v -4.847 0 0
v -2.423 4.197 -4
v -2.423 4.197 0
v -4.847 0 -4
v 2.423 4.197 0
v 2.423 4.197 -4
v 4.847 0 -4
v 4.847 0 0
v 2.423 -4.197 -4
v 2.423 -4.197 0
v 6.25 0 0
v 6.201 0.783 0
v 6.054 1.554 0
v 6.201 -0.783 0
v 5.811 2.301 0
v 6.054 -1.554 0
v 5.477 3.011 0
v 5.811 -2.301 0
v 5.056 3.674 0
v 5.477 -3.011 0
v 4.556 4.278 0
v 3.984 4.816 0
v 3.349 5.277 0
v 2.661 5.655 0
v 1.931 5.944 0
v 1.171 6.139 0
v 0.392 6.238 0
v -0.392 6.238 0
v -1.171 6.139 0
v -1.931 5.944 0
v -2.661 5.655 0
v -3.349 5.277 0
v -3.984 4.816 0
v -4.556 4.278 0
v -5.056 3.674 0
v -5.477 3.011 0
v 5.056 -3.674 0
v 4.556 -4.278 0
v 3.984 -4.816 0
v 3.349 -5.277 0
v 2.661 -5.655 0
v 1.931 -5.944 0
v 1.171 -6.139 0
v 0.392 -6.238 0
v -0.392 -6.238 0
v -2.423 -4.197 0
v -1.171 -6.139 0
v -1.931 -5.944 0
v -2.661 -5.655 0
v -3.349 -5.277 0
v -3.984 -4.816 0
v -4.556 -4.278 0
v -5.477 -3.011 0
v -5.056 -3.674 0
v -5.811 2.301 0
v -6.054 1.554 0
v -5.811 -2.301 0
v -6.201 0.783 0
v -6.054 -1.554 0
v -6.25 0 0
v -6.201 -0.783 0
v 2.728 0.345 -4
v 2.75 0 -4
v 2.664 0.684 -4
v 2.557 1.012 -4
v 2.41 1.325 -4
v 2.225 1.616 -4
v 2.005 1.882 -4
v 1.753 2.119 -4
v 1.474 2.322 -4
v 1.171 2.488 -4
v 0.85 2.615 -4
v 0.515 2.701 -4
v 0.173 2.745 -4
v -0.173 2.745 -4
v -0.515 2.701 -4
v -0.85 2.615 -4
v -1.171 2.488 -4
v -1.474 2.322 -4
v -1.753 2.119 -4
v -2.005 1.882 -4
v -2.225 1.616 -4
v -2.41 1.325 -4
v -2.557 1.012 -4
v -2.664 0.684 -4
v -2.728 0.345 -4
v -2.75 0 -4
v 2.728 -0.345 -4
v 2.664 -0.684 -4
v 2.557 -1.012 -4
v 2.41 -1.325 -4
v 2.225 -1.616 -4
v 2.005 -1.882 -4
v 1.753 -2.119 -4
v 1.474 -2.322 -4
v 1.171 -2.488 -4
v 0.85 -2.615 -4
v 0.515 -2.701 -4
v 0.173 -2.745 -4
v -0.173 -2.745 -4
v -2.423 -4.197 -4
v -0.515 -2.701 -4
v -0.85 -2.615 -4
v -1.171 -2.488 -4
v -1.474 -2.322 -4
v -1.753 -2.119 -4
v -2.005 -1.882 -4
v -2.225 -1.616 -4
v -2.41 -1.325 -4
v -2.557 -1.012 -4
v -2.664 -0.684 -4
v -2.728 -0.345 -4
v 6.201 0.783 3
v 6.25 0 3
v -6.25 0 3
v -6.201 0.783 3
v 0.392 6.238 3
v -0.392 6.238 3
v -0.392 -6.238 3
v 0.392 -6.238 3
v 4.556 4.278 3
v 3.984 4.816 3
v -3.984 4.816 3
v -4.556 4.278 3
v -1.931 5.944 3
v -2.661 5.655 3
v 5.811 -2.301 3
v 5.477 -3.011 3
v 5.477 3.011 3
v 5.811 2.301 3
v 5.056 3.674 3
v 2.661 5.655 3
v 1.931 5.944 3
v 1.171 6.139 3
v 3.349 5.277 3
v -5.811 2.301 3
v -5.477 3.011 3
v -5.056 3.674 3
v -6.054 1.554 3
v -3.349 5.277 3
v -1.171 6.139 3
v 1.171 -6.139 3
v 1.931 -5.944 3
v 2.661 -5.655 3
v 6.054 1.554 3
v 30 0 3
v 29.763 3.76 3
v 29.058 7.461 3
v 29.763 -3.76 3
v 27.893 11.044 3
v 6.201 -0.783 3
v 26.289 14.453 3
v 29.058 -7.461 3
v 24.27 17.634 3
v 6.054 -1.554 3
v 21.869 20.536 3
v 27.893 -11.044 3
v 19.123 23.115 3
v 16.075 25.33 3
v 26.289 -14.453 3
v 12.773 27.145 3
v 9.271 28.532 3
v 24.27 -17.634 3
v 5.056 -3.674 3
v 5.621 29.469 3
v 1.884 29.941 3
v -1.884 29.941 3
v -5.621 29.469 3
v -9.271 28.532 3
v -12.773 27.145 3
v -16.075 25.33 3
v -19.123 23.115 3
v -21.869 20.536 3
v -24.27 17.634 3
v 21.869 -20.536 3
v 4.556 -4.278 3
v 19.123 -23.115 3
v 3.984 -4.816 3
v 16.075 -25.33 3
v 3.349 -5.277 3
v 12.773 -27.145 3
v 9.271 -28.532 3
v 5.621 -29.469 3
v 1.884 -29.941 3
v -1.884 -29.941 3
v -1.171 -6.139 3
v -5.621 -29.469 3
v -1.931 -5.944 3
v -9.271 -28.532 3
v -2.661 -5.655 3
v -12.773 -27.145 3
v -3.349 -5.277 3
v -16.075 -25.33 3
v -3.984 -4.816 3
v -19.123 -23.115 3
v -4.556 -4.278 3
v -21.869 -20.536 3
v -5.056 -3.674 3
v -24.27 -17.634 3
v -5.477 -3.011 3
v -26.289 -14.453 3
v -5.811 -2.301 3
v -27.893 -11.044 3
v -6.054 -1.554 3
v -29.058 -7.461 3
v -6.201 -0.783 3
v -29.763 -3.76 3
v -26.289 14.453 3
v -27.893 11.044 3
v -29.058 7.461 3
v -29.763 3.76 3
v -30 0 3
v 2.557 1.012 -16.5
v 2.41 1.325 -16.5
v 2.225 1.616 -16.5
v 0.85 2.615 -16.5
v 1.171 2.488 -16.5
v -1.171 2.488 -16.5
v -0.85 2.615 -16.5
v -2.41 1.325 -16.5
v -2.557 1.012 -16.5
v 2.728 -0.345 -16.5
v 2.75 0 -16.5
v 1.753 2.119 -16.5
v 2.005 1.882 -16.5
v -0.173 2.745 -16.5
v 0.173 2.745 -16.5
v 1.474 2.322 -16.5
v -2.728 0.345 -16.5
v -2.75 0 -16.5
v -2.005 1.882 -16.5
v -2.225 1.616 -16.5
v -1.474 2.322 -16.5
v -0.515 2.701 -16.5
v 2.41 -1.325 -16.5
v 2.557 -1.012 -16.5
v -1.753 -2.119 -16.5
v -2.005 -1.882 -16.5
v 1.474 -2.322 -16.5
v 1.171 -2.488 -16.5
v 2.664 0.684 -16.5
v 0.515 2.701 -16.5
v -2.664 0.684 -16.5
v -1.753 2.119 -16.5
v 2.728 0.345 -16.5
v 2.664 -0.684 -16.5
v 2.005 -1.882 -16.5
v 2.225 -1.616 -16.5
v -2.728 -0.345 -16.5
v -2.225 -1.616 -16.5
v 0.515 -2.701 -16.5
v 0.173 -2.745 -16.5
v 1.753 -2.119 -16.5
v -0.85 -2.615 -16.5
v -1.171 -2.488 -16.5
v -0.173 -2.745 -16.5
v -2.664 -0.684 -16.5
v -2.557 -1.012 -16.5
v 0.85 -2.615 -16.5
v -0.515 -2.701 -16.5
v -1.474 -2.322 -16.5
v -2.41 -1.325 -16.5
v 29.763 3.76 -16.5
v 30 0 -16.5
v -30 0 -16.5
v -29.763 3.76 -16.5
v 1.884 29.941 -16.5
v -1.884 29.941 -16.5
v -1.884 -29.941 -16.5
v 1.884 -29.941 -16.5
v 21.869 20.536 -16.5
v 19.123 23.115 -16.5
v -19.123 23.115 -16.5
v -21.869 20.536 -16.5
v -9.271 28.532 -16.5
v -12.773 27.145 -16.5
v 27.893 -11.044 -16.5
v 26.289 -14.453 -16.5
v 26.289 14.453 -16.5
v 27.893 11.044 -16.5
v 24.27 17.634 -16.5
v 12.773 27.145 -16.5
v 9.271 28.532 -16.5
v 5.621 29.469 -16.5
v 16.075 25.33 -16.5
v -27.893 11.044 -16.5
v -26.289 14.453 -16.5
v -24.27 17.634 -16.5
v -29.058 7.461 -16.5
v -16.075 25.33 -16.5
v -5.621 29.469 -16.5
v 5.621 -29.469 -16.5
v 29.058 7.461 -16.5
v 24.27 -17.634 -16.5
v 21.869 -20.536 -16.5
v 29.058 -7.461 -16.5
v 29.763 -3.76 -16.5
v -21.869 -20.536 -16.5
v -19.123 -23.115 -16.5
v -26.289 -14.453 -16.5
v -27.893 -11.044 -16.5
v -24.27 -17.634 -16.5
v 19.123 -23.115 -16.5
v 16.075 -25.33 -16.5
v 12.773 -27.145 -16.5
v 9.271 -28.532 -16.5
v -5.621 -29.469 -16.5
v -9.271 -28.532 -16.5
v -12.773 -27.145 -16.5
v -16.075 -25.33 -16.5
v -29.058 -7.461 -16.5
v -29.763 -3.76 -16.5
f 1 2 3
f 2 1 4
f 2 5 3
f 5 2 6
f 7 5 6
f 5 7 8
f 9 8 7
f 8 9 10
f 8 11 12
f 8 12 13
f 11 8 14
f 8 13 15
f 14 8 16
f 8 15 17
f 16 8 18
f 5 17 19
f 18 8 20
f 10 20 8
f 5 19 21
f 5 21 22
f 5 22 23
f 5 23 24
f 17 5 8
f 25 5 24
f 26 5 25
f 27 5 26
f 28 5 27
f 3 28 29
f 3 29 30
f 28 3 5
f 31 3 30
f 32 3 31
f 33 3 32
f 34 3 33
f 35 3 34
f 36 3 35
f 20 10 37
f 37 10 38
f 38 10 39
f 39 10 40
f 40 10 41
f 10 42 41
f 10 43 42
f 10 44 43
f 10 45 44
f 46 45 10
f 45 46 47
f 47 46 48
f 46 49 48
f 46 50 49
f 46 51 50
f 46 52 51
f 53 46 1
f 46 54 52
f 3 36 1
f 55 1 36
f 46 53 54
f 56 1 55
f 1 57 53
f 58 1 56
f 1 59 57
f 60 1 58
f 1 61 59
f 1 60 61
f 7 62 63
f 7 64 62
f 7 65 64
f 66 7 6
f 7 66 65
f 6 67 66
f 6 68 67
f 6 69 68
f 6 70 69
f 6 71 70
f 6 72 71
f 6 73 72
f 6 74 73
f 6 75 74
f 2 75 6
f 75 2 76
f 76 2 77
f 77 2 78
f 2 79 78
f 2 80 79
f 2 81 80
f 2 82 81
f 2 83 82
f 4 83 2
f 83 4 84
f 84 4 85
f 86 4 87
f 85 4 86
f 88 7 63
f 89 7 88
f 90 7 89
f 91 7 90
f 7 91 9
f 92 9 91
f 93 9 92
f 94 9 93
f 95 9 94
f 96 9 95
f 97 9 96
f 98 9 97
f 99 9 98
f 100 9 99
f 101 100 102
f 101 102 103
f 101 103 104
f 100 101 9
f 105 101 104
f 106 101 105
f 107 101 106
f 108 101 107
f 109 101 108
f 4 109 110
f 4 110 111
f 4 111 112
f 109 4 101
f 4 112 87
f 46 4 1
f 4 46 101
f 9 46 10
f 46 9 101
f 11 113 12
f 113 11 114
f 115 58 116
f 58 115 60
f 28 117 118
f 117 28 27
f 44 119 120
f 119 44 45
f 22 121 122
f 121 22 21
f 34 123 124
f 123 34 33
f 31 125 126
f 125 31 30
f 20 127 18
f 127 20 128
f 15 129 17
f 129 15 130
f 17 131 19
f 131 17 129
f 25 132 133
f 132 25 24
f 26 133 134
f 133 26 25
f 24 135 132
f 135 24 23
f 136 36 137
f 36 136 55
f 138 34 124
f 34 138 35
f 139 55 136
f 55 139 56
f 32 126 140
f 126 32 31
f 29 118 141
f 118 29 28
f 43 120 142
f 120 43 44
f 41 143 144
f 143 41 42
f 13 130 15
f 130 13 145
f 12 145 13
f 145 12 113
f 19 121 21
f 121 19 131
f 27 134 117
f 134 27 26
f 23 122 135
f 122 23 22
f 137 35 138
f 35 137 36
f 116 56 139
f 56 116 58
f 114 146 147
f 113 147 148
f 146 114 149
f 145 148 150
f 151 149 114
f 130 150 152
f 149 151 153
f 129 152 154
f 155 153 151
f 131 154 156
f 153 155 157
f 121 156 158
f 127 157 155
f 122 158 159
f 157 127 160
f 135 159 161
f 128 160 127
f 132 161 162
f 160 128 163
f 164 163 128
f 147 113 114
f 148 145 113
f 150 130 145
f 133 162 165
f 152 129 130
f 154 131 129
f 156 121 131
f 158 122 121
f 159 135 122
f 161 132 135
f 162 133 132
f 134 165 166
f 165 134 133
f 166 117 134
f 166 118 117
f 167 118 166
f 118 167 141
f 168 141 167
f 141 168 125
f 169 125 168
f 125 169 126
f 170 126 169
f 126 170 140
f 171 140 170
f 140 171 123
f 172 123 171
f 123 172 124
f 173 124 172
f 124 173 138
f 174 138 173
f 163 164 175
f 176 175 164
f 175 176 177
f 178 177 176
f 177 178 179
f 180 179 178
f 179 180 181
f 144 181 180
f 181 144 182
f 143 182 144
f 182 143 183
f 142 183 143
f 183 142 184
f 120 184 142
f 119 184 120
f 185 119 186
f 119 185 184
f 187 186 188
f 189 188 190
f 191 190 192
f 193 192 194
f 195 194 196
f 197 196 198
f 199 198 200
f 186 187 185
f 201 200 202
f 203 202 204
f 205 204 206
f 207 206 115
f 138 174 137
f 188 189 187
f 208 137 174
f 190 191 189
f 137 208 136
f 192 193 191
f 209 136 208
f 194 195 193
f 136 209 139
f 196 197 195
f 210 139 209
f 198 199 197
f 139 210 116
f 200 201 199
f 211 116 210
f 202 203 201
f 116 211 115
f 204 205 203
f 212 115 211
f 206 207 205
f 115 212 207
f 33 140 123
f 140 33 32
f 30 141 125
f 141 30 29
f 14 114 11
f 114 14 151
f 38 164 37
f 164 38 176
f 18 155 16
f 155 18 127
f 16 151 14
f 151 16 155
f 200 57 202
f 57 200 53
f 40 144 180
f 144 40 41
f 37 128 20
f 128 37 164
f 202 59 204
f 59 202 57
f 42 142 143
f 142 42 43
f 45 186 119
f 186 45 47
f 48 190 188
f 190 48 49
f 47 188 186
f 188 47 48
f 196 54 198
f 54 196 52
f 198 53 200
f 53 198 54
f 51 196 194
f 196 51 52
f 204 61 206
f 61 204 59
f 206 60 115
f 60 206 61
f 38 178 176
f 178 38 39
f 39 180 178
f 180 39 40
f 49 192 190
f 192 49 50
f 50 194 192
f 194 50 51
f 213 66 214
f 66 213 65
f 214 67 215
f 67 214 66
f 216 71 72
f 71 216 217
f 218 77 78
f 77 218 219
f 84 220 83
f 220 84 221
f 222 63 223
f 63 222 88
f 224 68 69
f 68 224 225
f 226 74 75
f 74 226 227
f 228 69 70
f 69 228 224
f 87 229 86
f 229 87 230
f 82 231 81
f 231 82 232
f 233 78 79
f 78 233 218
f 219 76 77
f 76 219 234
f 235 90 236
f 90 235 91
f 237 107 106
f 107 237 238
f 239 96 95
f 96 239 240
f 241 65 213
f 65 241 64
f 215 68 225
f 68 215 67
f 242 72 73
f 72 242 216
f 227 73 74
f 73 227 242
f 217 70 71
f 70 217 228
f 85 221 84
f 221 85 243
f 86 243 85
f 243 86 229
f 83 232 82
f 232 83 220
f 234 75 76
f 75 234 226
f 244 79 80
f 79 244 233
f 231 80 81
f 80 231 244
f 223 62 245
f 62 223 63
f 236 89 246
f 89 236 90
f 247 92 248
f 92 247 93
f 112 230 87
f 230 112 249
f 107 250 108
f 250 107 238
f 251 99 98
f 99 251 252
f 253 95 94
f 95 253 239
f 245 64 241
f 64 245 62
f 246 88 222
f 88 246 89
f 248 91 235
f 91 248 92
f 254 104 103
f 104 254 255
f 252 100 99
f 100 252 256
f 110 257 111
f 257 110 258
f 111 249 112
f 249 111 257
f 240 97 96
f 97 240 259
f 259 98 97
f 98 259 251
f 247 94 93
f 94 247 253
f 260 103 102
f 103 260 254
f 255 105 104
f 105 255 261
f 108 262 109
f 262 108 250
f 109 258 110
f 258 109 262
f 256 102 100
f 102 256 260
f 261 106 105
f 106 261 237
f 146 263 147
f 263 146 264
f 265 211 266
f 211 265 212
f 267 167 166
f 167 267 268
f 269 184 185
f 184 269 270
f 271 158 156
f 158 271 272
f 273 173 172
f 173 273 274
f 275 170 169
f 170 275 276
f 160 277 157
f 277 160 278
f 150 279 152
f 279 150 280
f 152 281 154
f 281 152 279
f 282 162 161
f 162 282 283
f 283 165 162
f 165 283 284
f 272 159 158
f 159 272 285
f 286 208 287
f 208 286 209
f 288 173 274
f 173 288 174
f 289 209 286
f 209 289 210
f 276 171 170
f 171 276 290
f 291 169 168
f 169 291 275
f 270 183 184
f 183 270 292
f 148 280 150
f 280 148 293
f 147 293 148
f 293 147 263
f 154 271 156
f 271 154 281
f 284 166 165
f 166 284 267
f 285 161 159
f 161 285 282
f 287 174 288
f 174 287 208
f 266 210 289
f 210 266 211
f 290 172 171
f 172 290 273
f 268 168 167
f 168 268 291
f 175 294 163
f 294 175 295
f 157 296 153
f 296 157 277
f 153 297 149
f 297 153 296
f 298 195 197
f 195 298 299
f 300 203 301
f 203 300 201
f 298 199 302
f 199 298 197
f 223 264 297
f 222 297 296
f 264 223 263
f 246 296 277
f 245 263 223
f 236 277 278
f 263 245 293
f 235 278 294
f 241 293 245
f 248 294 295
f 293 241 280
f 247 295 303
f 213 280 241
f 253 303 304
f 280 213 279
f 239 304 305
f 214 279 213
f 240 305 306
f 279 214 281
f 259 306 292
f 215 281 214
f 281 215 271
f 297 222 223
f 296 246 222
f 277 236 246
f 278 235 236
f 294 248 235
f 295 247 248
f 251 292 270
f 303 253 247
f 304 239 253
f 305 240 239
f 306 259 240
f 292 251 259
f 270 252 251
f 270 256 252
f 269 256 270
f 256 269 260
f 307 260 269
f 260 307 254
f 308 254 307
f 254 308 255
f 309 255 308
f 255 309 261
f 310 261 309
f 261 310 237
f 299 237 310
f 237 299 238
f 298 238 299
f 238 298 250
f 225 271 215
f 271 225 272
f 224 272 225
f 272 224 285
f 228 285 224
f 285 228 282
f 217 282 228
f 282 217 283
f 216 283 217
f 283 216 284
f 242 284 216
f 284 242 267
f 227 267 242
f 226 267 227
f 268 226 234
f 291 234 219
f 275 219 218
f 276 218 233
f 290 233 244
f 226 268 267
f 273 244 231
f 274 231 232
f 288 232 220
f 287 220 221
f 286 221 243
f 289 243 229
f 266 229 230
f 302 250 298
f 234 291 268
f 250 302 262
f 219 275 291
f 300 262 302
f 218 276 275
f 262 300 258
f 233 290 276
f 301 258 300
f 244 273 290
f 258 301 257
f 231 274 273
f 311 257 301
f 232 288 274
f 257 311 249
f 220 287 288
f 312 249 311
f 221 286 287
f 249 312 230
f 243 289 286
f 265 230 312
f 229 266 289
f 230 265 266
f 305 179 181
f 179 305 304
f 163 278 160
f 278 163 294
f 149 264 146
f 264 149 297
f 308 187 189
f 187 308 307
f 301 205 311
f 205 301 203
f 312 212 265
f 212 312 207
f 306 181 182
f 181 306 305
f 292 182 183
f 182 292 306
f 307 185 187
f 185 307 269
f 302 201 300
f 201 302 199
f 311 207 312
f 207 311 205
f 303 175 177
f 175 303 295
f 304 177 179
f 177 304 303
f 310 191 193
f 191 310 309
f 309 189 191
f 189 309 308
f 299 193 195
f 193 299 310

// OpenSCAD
$fn = 50;

difference() {
	union() {
		translate(v = [0, 0, -16.5]) {
			cylinder(h = 19.5, r = 30.0);
		}
	}
	union() {
		translate(v = [0, 0, 0]) {
			rotate(a = [0, 0, 0]) {
				difference() {
					union() {
						translate(v = [0, 0, -4]) {
							linear_extrude(height = 4) {
								polygon(points = [[4.8468, 0.0], [2.4234000000000004, 4.197451927062417], [-2.423399999999999, 4.197451927062417], [-4.8468, 5.935618106107392e-16], [-2.423400000000002, -4.197451927062416], [2.423399999999997, -4.197451927062419]]);
							}
						}
					}
					union();
				}
			}
		}
		#cylinder(h = 3, r = 6.25);
		#translate(v = [0, 0, -100.0]) {
			cylinder(h = 200, r = 2.75);
		}
	}
}
